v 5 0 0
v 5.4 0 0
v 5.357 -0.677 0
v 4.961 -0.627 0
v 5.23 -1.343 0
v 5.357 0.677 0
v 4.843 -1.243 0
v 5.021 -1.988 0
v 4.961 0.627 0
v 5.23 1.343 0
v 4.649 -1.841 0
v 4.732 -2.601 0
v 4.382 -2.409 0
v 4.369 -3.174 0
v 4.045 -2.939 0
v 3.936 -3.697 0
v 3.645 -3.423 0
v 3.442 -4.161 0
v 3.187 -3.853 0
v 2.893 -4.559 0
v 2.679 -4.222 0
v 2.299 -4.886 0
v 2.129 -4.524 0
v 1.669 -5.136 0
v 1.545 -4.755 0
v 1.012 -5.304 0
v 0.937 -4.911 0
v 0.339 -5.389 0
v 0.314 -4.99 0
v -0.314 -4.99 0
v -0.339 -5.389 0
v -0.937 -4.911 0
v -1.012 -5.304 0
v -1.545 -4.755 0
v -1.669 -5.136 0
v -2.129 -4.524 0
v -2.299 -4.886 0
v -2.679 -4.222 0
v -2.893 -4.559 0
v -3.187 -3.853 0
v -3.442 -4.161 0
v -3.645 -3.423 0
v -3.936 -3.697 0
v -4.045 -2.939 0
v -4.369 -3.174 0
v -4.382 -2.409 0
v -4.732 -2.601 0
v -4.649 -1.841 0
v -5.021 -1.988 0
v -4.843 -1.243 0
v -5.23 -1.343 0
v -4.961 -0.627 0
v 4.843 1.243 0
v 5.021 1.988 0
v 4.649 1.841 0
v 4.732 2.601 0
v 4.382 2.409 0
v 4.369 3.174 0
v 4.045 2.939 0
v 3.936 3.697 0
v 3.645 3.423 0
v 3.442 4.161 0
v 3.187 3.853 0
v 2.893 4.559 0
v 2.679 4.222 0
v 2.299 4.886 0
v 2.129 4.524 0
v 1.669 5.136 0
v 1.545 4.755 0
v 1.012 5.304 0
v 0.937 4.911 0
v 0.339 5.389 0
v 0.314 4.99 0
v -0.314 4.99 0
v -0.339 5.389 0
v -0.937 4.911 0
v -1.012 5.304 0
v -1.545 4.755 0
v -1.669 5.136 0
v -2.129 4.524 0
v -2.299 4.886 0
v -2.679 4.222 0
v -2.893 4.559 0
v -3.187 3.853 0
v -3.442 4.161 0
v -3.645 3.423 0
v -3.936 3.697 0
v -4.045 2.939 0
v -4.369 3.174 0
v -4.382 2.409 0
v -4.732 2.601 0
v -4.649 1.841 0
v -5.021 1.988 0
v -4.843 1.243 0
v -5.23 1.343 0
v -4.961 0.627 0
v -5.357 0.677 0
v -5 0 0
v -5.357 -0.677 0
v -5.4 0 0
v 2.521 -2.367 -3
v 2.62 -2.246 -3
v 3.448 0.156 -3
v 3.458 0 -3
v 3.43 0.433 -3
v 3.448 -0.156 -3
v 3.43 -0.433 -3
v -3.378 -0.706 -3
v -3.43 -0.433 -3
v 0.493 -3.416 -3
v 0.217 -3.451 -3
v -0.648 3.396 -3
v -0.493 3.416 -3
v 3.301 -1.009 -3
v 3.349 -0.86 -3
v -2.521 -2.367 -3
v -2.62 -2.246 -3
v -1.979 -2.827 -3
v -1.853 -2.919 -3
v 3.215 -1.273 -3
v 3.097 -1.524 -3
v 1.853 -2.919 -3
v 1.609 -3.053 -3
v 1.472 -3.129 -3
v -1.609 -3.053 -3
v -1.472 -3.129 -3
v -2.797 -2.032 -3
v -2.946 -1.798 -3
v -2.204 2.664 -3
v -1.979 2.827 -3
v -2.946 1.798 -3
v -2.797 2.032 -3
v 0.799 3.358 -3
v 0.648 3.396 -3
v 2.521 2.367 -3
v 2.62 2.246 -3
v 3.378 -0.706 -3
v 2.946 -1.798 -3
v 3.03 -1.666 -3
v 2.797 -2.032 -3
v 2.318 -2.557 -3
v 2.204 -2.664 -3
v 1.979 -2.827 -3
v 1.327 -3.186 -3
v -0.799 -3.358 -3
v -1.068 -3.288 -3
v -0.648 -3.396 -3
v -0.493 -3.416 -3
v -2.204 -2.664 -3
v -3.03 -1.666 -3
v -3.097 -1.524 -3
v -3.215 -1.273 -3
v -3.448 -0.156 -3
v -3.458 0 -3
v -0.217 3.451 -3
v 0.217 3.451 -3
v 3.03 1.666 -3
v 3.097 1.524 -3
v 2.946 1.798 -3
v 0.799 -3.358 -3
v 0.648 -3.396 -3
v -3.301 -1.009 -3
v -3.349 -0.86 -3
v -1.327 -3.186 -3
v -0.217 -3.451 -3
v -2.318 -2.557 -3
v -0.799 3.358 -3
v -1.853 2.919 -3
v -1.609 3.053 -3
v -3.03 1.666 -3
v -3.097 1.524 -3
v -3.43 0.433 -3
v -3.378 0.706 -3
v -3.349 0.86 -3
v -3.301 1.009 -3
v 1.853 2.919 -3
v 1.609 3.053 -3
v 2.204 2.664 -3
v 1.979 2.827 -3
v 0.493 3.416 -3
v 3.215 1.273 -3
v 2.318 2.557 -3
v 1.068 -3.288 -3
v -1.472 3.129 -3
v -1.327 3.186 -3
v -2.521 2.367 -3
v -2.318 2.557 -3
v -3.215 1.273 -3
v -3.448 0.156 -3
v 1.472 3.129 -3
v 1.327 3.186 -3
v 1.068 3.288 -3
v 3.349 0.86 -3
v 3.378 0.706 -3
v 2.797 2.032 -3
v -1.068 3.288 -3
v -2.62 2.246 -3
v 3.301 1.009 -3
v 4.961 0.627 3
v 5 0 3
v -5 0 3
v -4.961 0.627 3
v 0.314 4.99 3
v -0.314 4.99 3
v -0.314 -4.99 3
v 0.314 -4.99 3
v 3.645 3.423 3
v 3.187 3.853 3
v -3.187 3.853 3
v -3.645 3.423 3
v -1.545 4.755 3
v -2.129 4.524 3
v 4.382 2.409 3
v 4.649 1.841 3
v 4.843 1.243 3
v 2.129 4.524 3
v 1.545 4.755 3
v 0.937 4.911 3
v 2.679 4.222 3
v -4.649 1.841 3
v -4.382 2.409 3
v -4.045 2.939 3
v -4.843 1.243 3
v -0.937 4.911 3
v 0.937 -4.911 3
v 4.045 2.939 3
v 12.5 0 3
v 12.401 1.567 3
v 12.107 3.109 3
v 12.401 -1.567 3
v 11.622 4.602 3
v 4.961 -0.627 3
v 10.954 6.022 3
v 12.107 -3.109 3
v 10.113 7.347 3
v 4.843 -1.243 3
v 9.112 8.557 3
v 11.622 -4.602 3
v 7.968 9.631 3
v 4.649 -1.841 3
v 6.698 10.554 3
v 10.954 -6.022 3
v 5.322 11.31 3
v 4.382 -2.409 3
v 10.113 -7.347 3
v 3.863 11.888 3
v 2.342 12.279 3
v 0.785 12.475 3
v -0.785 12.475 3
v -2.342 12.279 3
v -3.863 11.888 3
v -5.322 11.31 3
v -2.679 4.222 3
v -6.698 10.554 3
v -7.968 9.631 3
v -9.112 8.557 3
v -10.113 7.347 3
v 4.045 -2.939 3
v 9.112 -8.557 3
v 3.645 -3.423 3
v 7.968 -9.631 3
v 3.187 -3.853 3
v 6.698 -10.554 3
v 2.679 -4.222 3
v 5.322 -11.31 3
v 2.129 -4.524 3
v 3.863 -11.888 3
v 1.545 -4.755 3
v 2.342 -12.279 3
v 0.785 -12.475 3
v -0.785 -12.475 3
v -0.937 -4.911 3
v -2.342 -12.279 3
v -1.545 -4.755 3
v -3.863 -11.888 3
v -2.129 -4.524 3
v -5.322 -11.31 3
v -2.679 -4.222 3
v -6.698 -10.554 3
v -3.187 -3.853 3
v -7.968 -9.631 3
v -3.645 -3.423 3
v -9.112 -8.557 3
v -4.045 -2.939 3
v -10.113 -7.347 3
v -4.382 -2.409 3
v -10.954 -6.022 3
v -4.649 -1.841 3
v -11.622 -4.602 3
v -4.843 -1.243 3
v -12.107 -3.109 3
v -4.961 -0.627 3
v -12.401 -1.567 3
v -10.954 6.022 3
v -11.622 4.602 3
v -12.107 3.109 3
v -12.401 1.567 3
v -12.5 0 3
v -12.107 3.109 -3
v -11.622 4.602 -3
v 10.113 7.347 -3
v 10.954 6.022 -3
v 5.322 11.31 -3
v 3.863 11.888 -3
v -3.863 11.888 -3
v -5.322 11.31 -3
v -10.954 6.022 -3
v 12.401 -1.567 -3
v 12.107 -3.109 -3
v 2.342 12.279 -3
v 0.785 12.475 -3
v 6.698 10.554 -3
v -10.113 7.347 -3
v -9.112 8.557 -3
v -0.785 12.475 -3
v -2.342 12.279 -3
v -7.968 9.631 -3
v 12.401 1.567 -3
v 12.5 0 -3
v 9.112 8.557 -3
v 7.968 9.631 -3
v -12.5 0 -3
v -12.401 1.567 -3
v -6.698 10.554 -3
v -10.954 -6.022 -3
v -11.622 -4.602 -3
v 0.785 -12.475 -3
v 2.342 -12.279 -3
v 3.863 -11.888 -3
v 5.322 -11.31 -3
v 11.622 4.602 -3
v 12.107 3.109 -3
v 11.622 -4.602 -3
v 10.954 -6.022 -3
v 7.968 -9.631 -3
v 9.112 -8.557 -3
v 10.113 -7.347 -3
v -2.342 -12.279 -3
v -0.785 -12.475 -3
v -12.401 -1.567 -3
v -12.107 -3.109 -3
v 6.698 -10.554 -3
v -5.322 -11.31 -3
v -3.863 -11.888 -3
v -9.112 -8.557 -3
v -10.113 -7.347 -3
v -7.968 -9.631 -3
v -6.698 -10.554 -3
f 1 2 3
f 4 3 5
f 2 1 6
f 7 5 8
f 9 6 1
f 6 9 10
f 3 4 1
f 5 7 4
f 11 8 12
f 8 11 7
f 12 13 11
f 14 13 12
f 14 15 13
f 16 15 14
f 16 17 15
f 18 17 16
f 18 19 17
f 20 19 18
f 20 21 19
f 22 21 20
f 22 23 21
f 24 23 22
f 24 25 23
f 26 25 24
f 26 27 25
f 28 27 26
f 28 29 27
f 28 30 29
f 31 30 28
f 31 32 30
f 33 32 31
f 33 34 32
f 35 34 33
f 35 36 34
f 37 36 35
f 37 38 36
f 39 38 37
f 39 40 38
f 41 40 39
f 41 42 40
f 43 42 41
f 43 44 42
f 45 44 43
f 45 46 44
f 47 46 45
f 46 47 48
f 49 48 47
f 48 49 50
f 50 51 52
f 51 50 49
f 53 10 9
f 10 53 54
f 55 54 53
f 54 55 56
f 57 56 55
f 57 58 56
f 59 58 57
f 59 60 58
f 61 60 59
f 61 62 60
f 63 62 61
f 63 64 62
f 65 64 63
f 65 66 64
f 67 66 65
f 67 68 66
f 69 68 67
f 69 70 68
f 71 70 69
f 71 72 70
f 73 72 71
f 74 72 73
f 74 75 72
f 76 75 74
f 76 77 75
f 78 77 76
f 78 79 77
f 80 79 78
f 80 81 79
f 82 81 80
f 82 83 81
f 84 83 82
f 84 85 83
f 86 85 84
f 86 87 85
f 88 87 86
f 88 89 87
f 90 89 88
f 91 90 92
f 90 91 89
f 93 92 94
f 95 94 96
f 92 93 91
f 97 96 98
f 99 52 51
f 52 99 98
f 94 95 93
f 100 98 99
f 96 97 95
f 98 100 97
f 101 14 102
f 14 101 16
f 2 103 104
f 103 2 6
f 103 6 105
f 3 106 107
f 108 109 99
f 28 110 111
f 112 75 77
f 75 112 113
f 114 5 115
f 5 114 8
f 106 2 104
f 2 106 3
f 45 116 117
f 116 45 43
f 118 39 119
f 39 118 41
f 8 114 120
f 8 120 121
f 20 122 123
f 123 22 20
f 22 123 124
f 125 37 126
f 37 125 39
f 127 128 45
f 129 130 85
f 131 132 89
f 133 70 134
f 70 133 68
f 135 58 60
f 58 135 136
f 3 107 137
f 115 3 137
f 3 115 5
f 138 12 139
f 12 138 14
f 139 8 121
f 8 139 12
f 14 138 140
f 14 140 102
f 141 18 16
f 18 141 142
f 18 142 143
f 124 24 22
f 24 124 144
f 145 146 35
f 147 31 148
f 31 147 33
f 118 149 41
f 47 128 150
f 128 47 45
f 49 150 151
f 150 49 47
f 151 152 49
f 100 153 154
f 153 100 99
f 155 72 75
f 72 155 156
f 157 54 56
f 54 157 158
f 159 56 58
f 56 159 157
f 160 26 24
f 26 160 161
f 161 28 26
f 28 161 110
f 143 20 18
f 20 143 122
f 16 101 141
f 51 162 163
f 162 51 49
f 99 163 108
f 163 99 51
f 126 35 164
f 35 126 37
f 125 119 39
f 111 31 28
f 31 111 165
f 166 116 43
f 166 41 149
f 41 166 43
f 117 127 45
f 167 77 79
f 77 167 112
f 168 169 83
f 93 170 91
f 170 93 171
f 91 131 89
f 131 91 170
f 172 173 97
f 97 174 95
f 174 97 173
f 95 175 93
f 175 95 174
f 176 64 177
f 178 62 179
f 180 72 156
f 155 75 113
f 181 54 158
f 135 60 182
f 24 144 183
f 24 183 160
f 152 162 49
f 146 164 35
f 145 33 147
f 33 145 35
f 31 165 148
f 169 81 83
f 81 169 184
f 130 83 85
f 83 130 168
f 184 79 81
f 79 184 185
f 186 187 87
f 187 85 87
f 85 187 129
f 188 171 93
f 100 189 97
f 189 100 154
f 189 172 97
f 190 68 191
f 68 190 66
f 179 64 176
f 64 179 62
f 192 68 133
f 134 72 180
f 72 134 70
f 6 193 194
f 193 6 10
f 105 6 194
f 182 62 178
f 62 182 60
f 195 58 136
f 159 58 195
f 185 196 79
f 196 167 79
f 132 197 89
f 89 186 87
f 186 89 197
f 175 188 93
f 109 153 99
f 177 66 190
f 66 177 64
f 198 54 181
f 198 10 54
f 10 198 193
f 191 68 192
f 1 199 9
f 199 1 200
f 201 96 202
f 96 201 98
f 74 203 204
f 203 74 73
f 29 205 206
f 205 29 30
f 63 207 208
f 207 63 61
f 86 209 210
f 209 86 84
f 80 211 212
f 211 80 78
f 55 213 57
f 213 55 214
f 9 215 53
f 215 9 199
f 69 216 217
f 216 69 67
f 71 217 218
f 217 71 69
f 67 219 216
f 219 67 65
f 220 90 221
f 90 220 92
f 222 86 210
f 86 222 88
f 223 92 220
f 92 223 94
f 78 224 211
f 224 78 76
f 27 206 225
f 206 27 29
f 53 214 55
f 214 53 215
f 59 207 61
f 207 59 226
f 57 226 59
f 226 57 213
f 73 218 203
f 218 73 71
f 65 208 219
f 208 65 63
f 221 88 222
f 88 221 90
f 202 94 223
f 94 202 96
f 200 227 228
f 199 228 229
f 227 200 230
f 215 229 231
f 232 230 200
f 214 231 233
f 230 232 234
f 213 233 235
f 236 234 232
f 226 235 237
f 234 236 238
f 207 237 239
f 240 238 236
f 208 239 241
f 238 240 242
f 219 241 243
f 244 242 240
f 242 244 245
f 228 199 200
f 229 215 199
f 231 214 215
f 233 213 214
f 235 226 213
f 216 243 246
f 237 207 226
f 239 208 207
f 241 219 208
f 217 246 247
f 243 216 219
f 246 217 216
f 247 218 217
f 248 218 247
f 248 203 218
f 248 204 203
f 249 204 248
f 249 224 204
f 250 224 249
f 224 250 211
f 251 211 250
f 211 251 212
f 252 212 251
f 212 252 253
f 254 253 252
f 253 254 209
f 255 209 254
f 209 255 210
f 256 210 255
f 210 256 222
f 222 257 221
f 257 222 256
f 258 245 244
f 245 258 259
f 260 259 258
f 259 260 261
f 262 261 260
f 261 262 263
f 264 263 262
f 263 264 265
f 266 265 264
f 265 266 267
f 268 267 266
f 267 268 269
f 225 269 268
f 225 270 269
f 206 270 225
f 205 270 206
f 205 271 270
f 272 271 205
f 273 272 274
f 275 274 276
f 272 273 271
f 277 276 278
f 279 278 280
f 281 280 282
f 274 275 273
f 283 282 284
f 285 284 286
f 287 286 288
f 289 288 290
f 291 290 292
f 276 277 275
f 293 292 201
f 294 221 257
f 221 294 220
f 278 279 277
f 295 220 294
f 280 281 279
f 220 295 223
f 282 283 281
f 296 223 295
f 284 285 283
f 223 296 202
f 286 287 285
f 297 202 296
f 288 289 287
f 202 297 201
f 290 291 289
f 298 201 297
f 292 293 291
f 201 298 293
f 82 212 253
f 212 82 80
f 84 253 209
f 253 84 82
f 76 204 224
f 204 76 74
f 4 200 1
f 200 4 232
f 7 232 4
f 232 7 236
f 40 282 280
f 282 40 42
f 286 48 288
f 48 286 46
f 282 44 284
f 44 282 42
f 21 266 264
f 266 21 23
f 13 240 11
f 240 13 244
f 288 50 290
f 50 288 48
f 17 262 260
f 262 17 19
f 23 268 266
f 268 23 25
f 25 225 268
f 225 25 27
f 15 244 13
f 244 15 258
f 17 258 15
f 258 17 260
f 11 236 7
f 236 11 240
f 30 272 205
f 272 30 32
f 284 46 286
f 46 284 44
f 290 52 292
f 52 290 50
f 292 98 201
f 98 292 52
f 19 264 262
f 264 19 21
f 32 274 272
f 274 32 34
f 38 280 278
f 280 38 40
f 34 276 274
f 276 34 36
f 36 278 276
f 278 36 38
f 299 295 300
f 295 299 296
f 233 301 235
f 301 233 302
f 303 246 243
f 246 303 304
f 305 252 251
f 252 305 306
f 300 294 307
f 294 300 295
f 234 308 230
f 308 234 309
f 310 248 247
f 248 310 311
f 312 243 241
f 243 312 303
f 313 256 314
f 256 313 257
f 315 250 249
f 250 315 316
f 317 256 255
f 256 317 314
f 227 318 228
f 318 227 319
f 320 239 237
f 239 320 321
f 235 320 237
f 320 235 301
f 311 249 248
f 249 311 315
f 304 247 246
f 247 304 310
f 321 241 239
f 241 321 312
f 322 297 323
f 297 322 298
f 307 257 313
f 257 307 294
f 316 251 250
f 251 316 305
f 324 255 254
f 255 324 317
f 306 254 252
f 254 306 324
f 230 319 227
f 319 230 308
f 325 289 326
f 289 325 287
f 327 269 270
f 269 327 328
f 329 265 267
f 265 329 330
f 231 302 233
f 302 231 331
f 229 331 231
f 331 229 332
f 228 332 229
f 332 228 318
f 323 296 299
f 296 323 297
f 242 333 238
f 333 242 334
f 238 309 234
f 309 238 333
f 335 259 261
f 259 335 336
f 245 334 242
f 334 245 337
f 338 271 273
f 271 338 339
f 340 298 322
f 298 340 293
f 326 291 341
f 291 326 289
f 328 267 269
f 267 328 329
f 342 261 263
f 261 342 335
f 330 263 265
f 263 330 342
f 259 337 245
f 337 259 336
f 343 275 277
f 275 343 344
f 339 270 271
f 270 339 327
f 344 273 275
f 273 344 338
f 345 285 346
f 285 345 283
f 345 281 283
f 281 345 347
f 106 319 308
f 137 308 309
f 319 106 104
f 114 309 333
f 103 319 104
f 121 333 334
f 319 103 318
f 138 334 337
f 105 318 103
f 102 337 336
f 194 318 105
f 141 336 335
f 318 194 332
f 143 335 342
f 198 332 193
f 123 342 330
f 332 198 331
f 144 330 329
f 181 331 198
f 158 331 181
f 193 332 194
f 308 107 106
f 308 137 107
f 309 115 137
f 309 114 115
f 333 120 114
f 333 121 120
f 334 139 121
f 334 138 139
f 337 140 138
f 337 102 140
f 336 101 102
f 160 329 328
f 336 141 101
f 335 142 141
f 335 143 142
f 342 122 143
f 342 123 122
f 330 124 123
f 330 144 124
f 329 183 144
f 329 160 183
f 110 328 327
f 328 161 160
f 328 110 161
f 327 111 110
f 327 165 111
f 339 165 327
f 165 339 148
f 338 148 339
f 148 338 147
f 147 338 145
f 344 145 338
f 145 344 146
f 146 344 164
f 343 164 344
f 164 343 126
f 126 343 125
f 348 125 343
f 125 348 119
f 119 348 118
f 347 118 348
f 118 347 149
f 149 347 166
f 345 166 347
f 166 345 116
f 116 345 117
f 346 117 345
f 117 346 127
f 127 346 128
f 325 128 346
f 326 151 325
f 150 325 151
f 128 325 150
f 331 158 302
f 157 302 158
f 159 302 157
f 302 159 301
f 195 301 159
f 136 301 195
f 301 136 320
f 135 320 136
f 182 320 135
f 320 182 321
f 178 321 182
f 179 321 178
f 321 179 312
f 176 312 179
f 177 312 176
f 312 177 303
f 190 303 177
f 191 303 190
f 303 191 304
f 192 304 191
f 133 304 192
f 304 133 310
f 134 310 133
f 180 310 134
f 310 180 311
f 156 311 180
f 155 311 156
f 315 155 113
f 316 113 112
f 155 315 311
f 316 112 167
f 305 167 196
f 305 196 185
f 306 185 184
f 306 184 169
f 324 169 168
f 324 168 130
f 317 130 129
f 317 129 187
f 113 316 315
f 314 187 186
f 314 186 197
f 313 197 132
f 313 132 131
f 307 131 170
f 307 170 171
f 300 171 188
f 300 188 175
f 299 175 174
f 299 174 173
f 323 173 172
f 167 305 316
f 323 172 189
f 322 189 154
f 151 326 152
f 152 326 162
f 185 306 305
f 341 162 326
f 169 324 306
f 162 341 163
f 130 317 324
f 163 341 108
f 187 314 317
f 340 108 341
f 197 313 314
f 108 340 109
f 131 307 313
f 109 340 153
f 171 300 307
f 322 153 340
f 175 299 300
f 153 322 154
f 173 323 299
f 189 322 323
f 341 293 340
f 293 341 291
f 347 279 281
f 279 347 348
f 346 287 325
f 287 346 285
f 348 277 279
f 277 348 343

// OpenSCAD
$fn = 50;


difference() {
	union() {
		translate(v = [0, 0, -3.0000000000]) {
			cylinder(h = 6, r = 12.5000000000);
		}
	}
	union() {
		translate(v = [0, 0, 0]) {
			rotate(a = [0, 0, 0]) {
				difference() {
					union() {
						translate(v = [0, 0, -6.0000000000]) {
							cylinder(h = 6, r = 2.6000000000);
						}
						translate(v = [0, 0, -3.9000000000]) {
							cylinder(h = 3.9000000000, r1 = 2.8750000000, r2 = 5.4000000000);
						}
						translate(v = [0, 0, -6.0000000000]) {
							cylinder(h = 6, r = 2.8750000000);
						}
						translate(v = [0, 0, -6.0000000000]) {
							cylinder(h = 6, r = 2.6000000000);
						}
					}
					union();
				}
			}
		}
		#cylinder(h = 3, r = 5.0000000000);
	}
}
